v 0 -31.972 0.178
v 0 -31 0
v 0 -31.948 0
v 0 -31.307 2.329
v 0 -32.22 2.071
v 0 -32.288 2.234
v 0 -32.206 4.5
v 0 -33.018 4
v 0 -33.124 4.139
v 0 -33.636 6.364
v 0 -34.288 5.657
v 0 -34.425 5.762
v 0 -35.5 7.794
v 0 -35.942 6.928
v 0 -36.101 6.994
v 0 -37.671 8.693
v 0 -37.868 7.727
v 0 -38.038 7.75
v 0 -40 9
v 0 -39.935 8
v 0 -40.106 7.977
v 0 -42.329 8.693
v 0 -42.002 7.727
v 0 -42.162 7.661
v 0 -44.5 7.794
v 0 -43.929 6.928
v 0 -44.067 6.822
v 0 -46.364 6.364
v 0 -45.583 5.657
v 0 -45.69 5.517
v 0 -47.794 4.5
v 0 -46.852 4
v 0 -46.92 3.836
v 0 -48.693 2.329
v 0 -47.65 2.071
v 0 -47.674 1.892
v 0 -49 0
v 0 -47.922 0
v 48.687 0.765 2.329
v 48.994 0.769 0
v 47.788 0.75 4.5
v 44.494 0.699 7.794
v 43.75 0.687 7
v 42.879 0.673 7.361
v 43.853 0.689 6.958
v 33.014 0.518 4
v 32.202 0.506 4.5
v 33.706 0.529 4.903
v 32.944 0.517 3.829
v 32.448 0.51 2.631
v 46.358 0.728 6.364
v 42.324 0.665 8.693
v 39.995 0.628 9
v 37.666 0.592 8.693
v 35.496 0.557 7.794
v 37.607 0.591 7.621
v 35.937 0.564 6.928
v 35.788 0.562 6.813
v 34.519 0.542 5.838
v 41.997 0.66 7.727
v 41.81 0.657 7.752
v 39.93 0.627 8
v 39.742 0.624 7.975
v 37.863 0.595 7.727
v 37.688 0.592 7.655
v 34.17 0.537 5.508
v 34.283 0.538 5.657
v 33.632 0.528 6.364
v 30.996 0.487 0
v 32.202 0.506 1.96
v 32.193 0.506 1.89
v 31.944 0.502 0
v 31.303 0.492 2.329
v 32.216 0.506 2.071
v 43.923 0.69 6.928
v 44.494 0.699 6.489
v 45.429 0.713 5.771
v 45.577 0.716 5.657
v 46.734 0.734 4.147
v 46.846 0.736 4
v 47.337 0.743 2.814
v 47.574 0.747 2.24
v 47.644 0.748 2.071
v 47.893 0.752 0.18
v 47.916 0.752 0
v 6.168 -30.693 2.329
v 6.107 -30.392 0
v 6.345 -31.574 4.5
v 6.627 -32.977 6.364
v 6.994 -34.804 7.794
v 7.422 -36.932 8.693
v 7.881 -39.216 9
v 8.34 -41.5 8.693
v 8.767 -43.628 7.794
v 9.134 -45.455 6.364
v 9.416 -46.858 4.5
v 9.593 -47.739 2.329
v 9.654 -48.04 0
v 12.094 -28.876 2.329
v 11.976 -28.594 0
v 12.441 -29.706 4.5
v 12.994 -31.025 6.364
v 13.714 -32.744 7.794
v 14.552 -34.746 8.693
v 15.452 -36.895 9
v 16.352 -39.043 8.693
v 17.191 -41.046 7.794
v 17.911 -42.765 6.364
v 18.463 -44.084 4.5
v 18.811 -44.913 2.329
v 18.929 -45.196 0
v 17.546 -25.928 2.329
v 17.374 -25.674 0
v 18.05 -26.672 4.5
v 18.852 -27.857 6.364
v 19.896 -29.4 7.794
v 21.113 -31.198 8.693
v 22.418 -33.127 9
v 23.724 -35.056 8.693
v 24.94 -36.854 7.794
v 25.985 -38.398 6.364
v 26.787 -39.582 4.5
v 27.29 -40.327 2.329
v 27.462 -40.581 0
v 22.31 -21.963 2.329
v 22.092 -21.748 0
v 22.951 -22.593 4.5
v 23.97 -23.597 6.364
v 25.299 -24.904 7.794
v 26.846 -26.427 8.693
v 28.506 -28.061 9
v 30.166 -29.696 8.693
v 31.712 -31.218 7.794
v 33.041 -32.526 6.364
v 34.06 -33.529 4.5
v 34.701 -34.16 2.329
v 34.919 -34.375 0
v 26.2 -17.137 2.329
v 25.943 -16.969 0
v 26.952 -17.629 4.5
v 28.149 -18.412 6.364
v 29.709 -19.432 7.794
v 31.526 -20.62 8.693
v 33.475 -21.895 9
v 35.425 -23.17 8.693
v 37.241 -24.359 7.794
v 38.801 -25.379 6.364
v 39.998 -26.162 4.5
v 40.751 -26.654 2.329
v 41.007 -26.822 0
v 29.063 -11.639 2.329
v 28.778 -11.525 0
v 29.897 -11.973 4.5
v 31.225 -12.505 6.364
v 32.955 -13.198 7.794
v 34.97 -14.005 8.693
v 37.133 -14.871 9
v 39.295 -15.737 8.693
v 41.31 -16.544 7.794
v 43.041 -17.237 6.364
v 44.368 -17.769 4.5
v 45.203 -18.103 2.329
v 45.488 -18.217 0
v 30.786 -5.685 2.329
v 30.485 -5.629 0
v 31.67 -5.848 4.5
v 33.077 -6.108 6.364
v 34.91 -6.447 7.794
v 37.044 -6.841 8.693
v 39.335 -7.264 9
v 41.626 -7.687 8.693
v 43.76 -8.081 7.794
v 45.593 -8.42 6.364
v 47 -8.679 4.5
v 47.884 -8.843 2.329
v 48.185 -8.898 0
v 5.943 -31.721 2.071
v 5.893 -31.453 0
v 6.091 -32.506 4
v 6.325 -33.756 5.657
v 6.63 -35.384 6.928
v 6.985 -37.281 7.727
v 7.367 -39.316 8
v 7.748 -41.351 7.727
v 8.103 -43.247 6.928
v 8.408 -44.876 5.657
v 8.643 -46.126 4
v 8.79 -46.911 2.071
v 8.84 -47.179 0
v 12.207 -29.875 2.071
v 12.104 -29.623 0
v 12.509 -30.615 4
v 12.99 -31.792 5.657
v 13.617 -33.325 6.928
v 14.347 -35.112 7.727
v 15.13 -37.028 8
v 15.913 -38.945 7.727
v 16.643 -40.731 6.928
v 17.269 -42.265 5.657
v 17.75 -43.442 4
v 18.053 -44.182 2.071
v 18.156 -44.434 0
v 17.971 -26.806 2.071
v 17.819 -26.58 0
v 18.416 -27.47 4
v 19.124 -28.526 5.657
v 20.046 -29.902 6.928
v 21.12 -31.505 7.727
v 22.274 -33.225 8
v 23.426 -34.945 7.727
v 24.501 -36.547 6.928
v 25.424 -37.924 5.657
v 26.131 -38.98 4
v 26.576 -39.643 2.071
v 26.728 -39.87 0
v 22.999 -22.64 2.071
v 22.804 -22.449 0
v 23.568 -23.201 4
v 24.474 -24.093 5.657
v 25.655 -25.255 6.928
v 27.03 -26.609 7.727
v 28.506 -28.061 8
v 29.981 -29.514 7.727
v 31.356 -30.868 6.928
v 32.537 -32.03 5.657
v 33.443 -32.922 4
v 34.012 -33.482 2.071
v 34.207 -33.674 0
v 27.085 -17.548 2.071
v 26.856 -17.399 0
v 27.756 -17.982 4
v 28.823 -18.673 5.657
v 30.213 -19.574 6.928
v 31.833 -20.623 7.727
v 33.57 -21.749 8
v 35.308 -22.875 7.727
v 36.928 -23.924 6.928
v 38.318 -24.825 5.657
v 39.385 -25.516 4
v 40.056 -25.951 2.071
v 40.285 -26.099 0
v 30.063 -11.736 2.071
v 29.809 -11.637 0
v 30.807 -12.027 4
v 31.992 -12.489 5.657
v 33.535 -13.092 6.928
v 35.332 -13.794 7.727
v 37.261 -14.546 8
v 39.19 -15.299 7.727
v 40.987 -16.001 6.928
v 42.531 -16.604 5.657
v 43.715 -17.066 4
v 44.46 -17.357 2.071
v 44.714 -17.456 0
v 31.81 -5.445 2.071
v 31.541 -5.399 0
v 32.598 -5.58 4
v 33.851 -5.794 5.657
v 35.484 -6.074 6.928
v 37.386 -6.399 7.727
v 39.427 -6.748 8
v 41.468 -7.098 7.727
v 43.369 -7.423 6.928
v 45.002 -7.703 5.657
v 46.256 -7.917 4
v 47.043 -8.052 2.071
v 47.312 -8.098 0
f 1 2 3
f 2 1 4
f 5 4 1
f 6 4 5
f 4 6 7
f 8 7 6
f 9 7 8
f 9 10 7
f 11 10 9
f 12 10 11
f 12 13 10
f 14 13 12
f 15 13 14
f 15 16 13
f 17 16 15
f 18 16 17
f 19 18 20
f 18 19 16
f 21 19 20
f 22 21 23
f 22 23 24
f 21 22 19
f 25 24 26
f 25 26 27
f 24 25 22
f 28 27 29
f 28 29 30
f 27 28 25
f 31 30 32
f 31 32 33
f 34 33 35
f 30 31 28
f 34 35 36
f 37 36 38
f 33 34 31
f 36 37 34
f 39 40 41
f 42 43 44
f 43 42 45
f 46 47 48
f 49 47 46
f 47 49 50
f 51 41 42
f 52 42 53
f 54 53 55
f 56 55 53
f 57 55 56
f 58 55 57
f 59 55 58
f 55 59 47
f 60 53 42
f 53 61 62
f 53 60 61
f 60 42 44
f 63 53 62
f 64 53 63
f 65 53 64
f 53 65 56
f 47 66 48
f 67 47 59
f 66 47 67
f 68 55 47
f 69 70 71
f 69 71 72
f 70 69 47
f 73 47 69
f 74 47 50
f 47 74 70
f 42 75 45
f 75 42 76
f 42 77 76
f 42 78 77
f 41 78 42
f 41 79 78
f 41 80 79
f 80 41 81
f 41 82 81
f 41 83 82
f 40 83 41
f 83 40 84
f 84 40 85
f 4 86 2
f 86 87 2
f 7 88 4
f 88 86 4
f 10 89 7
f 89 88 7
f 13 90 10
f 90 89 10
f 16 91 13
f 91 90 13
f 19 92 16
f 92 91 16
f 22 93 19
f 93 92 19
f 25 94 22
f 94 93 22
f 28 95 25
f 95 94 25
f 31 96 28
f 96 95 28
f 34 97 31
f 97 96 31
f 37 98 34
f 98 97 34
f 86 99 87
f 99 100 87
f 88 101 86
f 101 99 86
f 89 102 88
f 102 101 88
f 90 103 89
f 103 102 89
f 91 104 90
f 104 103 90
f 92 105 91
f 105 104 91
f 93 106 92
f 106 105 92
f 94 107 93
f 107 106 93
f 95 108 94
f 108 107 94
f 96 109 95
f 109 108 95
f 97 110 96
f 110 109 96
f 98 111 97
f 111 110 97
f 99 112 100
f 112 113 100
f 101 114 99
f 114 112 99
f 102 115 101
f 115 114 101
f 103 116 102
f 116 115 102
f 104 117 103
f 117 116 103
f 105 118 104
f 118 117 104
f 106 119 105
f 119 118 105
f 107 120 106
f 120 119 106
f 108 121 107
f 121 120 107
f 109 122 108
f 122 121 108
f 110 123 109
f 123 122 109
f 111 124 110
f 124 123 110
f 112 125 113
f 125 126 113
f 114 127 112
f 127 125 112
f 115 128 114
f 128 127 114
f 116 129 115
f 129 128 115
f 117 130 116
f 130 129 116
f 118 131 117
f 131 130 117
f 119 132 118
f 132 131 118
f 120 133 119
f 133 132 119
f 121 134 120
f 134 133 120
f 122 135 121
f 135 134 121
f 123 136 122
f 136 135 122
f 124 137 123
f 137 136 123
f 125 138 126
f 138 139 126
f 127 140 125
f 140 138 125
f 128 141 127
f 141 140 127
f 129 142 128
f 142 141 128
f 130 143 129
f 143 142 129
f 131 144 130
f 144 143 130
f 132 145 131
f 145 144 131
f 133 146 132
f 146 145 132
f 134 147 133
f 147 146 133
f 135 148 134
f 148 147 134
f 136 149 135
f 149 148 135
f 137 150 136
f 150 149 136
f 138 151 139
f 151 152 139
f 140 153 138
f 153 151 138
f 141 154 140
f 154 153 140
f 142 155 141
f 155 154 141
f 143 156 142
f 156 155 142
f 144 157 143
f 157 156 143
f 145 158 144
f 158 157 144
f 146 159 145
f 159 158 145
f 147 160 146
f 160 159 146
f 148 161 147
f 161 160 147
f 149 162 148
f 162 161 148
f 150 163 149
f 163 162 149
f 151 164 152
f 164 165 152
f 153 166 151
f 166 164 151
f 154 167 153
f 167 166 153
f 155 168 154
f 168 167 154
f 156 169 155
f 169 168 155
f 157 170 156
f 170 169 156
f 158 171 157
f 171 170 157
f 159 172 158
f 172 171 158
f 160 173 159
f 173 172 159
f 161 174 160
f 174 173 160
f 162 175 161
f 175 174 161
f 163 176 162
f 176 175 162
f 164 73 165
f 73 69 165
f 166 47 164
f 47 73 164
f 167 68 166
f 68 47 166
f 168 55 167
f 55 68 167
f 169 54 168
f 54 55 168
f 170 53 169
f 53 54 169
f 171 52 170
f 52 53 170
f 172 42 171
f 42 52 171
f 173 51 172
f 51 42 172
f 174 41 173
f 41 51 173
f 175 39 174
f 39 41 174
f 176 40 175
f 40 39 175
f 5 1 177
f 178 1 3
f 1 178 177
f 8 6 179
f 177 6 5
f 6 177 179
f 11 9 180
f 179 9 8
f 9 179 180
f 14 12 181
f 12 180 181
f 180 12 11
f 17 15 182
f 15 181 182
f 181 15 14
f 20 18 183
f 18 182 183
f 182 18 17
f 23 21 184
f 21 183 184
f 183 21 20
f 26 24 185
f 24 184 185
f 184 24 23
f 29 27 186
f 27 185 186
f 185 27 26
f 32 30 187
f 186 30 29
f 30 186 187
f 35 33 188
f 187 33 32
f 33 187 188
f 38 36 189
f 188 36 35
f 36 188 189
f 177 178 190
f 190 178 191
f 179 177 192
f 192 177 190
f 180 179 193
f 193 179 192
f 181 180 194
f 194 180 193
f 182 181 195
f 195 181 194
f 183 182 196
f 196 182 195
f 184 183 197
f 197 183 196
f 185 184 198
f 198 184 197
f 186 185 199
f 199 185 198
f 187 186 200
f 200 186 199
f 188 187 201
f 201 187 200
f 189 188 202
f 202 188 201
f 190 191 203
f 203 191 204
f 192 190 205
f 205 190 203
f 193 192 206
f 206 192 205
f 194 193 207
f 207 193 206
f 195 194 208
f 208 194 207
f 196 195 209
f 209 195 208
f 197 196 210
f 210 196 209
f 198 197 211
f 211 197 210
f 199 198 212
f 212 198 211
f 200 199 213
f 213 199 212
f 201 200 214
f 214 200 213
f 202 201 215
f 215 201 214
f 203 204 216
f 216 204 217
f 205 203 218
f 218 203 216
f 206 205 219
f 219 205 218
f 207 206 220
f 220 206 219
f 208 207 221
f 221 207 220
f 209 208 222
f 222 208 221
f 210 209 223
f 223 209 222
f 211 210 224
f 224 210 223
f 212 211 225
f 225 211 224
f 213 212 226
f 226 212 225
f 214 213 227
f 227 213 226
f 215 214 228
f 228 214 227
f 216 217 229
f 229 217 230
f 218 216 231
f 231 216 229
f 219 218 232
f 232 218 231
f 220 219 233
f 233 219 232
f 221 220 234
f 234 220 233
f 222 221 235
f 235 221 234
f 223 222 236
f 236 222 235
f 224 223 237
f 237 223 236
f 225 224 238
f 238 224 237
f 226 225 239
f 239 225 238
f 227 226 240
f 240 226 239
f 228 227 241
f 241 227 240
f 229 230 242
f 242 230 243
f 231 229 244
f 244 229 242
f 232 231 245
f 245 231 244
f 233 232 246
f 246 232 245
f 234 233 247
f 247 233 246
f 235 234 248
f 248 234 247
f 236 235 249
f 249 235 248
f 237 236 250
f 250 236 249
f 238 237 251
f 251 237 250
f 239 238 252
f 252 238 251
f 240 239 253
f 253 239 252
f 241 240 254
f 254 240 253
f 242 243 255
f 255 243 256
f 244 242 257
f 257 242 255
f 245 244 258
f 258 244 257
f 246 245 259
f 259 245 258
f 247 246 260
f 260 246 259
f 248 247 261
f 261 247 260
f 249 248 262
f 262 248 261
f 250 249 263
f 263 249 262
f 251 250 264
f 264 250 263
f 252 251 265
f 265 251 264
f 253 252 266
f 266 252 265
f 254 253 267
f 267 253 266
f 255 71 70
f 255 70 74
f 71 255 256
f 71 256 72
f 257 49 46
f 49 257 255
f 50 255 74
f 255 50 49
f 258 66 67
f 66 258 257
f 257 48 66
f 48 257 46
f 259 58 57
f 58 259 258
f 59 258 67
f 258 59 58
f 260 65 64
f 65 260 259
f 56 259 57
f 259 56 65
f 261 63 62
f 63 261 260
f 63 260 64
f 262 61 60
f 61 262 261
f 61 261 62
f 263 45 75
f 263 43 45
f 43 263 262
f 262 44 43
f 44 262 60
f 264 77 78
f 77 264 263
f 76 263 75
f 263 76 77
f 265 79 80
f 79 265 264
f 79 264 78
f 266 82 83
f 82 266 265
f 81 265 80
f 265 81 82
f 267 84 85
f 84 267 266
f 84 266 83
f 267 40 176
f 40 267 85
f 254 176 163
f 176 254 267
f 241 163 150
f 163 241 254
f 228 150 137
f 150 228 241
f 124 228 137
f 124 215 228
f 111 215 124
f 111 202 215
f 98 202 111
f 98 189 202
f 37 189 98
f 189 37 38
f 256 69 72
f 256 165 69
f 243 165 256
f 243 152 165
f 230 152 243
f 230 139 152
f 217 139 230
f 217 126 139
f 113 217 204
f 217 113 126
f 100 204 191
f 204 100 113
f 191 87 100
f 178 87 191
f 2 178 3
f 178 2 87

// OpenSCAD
// file: ../build_environments.scad
// build_environments.scad: modules to build level sections
//

module pool(diameter=10.0, wall_height=2.0, step_width=3.0, connections=[])
{
    difference() {
        union() {
        difference() {
            cylinder(h=0.5,r1=diameter+step_width,r2=diameter+step_width,$fn=48);
            translate([0,0,-0.1])
                cylinder(h=0.7,r1=diameter,r2=diameter,$fn=48);
        }
        difference() {
            cylinder(h=wall_height,r1=diameter+step_width+1.0,r2=diameter+step_width+1.0,$fn=48);
            translate([0,0,-0.1])
                cylinder(h=wall_height+0.2,r1=diameter+step_width,r2=diameter+step_width,$fn=48);
        }
        }
    
        for (c = connections)
        {
            rotate([0,90,0]) {
                angle = atan2(c[1],c[0]);
                rotate([-angle,0,0]) {
                    cylinder(h=diameter+5.0,r1=c[2],r2=c[2],$fn=48);
                }
            }
        }
    }
}

module straight(length=10.0, width=2.0, dy1=0.0, dy2=0.0, dz=0.0)
{
    dims = [0, 0, 0, 0, 0, (dz/length)];
    matrix = [
        [ 1, dims[0], dims[1], 0 ],
        [ dims[2], 1, dims[4], 0 ],
        [ dims[5], dims[3], 1, 0 ],
        [ 0, 0, 0, 1 ]
    ];
    multmatrix(matrix)
    difference() {
        translate([dy1,0,0])
        union() {
            rotate([0,90,0]) {
                difference() {
                    cylinder(h=(length-dy1-dy2),r1=width+1.0,r2=width+1.0,$fn=24);
                    translate([0,0,-0.1])
                        cylinder(h=(length-dy1-dy2+0.2),r1=width,r2=width,$fn=24);
                }
                difference() {
                    cylinder(h=1.0,r1=width+2.0,r2=width+2.0,$fn=24);
                    translate([0,0,-0.1])
                        cylinder(h=1.2,r1=width,r2=width,$fn=24);
                }
                translate([0,0,(length-dy1-dy2)-1.0]) {
                    difference() {
                        cylinder(h=1.0,r1=width+2.0,r2=width+2.0,$fn=24);
                        translate([0,0,-0.1])
                            cylinder(h=1.2,r1=width,r2=width,$fn=24);
                    }
                }
            }
        }
        translate([0,0,-(2*width+4.0)/2])
            cube([3*length,3*length,2*width+4.0],center=true);
    }
}

module curve(p0=[0,0], center=[0,0], dir=1, angle=0.0, width=2.0)
{
    radius = sqrt((p0[0]-center[0])*(p0[0]-center[0]) + (p0[1]-center[1])*(p0[1]-center[1]));
    if (dir == 0) {
        difference() {
            rotate([0,0,-90])
            difference() {
                rotate_extrude(angle = angle, convexity = 10, $fn=32)
                    translate([radius, 0, 0])
                        circle(r = width+1.0,$fn=24);
                rotate([0,0,-1.0])
                    rotate_extrude(angle = angle+2.0, convexity = 10, $fn=32)
                        translate([radius, 0, 0])
                            circle(r = width,$fn=24);
            }
            translate([0,0,-(2*width+4.0)/2])
                cube([5*radius,5*radius,2*width+4.0],center=true);
        }
    }
    else {
        difference() {
            rotate([0,0,90])
            difference() {
                rotate_extrude(angle = -angle, convexity = 10, $fn=32)
                    translate([radius, 0, 0])
                        circle(r = width+1.0,$fn=24);
                rotate([0,0,1.0])
                    rotate_extrude(angle = -angle-2.0, convexity = 10, $fn=32)
                        translate([radius, 0, 0])
                            circle(r = width,$fn=24);
            }
            translate([0,0,-(2*width+4.0)/2])
                cube([5*radius,5*radius,2*width+4.0],center=true);
        }
    }

}

// test pool
//pool(diameter=12.0000, wall_height=3.0000, step_width=3.0000, connections=[[0.0000,-26.0000,2.0000], [23.6074,0.0000,2.0000]]);

// test straight, slope
//straight(length=26.0000, width=2.0000, dy1=11.8322, dy2=6.7082, dz=0.0000);
//straight(length=29.1549, width=12.0000, dy1=0.0000, dy2=0.0000, dz=-15.0000);

// test curve
//curve(p0=[23.6074, 0.0000], center=[23.6074, 5.0000], dir=0, angle=60.1011, width=2.0000);
//curve(p0=[33.6426, 12.4219], center=[37.9771, 9.9295], dir=1, angle=120.4627, width=2.0000);
// main file
use <../build_environments.scad>;
curve(p0=[138.2689, 81.6601], center=[175.9574, 68.2595], dir=0, angle=90.8997, width=8.0000);
